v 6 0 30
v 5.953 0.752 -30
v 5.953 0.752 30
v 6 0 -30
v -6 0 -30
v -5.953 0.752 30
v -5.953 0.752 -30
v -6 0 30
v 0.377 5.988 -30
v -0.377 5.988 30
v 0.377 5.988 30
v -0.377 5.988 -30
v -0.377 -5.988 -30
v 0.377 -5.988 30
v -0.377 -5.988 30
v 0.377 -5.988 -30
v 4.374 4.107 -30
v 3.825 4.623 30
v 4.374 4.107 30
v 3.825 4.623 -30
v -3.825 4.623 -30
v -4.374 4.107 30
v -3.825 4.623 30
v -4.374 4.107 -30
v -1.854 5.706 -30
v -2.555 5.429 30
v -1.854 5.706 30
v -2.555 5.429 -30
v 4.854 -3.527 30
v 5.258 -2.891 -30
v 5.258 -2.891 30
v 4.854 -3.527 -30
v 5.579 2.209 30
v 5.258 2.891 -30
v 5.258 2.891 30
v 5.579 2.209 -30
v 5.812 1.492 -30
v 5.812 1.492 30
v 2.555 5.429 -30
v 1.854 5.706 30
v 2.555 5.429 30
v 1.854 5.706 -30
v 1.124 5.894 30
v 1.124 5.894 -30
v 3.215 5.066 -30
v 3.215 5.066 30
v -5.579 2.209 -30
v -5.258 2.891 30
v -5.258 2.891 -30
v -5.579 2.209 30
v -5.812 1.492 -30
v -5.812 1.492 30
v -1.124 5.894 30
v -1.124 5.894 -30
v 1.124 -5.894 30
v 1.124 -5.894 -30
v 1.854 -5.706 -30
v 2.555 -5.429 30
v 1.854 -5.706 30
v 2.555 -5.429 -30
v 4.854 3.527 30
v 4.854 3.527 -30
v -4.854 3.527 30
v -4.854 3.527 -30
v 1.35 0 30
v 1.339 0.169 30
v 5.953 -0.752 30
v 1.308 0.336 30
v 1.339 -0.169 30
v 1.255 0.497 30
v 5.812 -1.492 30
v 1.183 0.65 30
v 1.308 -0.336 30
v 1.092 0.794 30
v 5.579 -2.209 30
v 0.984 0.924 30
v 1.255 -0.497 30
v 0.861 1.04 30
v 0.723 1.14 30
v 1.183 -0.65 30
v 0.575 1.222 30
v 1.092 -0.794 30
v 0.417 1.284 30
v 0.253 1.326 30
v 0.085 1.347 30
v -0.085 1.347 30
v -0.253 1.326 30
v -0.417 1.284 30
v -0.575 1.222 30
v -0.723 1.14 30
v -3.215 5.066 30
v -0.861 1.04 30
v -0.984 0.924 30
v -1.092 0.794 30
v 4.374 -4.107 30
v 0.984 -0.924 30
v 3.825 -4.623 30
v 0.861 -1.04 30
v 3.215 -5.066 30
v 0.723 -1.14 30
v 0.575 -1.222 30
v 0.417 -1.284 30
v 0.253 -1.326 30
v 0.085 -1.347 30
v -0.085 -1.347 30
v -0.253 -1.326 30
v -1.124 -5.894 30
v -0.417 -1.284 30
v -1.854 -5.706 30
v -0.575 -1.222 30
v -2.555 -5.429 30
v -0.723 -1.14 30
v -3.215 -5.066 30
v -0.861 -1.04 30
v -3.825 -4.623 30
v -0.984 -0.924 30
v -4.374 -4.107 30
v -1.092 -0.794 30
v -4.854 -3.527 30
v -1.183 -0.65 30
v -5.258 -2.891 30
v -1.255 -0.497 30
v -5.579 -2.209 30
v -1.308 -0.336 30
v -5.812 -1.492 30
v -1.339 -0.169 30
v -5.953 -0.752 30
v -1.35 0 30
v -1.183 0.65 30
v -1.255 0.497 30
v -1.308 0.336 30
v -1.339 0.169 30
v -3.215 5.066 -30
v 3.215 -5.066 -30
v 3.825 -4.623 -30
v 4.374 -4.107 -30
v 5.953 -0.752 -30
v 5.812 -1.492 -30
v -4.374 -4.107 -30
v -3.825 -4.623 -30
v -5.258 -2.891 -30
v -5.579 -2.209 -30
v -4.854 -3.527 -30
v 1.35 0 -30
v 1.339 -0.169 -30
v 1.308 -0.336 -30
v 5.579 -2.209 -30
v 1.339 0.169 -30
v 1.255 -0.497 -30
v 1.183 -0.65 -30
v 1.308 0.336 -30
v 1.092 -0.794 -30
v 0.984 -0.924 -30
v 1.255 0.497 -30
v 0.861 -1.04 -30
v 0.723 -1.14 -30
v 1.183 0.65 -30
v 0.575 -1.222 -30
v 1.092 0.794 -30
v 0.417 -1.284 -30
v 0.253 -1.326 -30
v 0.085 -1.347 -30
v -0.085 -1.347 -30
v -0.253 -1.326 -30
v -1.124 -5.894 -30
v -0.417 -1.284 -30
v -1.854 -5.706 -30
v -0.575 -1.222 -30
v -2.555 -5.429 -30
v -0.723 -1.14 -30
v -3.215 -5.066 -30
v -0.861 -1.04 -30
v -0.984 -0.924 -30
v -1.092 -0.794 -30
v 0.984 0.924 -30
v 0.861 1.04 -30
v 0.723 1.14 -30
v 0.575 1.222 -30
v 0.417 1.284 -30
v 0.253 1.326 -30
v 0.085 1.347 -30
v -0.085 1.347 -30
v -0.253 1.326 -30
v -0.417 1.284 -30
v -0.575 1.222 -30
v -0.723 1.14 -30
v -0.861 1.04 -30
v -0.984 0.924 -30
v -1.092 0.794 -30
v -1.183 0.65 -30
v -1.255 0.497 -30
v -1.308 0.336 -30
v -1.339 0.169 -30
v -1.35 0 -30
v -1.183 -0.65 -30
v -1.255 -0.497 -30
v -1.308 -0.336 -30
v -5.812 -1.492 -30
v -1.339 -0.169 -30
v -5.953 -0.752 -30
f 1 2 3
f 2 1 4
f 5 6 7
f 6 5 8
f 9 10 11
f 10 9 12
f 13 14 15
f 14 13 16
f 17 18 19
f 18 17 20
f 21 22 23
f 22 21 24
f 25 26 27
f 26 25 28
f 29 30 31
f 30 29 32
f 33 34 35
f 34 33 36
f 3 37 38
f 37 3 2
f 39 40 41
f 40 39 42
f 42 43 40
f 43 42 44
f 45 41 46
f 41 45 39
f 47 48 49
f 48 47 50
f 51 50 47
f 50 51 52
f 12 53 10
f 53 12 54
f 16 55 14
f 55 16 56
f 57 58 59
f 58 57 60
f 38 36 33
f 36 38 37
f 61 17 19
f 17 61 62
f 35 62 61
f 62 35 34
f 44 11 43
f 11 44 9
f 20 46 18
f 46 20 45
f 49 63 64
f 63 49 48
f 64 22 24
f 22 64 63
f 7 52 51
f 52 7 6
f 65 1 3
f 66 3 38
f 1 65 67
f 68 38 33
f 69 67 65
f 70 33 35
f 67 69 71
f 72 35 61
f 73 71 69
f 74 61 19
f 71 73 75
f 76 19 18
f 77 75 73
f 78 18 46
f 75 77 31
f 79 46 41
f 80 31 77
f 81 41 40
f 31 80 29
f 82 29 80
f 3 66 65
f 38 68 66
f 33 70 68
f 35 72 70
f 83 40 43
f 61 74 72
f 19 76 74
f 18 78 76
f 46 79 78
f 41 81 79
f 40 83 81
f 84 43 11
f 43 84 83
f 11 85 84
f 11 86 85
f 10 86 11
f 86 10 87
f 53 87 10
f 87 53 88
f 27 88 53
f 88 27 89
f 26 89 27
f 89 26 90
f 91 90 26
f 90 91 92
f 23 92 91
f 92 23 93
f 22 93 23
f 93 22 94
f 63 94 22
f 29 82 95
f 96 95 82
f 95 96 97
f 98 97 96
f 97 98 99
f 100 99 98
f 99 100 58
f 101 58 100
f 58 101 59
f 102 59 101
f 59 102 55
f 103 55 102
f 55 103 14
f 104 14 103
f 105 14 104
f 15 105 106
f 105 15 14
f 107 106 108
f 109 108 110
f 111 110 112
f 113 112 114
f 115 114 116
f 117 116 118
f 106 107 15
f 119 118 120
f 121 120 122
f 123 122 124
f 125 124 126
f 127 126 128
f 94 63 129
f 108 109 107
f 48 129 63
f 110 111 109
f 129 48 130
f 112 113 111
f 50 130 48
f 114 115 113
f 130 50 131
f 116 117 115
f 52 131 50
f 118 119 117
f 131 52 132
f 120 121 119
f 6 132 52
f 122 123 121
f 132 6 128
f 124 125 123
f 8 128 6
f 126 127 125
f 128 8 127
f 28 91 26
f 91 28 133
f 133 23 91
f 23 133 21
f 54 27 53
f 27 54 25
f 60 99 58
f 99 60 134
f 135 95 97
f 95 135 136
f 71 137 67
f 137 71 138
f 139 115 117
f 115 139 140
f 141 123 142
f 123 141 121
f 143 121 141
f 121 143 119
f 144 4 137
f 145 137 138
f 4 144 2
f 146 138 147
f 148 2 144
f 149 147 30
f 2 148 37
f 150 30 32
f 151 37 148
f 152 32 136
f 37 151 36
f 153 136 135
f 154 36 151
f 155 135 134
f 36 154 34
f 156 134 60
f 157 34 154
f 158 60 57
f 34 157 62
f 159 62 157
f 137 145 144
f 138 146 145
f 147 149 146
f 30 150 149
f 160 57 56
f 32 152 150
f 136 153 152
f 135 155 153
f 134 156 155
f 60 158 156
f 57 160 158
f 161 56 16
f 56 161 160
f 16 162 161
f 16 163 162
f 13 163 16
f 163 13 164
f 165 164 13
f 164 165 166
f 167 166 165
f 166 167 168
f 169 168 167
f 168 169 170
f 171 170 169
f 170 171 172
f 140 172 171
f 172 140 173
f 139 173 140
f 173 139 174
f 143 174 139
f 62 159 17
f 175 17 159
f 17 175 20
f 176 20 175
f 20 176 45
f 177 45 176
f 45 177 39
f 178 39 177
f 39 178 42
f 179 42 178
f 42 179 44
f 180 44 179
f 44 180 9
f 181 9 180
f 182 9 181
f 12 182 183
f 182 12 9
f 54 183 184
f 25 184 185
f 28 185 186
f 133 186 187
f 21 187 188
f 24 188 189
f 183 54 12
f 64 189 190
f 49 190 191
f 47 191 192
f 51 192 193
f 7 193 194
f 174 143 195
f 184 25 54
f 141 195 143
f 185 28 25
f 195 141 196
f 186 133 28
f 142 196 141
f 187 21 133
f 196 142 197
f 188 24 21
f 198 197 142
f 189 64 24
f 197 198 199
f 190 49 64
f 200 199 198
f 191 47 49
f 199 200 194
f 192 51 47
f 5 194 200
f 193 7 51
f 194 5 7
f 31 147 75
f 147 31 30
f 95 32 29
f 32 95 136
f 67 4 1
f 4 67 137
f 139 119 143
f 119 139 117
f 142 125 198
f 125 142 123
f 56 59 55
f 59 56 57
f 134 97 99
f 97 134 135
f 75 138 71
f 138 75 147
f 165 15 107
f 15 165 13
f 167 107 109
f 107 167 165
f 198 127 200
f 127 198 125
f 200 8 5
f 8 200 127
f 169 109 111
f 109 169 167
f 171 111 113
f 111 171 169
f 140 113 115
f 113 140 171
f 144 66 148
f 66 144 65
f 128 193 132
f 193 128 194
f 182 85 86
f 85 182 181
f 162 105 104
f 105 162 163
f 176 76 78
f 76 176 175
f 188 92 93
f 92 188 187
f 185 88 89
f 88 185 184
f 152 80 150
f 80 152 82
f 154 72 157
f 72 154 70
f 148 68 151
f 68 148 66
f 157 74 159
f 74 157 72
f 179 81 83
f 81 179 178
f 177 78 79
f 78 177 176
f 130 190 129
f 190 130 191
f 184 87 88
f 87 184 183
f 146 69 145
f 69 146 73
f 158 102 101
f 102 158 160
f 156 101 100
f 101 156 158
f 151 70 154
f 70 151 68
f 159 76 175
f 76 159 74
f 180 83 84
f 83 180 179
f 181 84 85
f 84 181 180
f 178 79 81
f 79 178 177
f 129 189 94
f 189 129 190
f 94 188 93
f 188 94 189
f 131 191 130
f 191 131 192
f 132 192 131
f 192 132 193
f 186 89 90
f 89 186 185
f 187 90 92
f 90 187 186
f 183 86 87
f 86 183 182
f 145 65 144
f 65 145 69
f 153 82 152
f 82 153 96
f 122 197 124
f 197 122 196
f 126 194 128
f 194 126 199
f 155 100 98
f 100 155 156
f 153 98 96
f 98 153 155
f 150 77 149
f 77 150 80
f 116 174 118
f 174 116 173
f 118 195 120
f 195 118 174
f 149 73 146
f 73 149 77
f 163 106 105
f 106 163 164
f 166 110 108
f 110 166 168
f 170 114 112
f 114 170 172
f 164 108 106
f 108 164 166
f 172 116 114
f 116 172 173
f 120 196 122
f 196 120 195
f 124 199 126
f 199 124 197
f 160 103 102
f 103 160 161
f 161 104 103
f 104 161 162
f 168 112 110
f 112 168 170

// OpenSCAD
$fn = 50;


difference() {
	union() {
		translate(v = [0, 0, -30.0000000000]) {
			cylinder(h = 60, r = 6.0000000000);
		}
	}
	union() {
		translate(v = [0, 0, -100.0000000000]) {
			cylinder(h = 200, r = 1.3500000000);
		}
	}
}
